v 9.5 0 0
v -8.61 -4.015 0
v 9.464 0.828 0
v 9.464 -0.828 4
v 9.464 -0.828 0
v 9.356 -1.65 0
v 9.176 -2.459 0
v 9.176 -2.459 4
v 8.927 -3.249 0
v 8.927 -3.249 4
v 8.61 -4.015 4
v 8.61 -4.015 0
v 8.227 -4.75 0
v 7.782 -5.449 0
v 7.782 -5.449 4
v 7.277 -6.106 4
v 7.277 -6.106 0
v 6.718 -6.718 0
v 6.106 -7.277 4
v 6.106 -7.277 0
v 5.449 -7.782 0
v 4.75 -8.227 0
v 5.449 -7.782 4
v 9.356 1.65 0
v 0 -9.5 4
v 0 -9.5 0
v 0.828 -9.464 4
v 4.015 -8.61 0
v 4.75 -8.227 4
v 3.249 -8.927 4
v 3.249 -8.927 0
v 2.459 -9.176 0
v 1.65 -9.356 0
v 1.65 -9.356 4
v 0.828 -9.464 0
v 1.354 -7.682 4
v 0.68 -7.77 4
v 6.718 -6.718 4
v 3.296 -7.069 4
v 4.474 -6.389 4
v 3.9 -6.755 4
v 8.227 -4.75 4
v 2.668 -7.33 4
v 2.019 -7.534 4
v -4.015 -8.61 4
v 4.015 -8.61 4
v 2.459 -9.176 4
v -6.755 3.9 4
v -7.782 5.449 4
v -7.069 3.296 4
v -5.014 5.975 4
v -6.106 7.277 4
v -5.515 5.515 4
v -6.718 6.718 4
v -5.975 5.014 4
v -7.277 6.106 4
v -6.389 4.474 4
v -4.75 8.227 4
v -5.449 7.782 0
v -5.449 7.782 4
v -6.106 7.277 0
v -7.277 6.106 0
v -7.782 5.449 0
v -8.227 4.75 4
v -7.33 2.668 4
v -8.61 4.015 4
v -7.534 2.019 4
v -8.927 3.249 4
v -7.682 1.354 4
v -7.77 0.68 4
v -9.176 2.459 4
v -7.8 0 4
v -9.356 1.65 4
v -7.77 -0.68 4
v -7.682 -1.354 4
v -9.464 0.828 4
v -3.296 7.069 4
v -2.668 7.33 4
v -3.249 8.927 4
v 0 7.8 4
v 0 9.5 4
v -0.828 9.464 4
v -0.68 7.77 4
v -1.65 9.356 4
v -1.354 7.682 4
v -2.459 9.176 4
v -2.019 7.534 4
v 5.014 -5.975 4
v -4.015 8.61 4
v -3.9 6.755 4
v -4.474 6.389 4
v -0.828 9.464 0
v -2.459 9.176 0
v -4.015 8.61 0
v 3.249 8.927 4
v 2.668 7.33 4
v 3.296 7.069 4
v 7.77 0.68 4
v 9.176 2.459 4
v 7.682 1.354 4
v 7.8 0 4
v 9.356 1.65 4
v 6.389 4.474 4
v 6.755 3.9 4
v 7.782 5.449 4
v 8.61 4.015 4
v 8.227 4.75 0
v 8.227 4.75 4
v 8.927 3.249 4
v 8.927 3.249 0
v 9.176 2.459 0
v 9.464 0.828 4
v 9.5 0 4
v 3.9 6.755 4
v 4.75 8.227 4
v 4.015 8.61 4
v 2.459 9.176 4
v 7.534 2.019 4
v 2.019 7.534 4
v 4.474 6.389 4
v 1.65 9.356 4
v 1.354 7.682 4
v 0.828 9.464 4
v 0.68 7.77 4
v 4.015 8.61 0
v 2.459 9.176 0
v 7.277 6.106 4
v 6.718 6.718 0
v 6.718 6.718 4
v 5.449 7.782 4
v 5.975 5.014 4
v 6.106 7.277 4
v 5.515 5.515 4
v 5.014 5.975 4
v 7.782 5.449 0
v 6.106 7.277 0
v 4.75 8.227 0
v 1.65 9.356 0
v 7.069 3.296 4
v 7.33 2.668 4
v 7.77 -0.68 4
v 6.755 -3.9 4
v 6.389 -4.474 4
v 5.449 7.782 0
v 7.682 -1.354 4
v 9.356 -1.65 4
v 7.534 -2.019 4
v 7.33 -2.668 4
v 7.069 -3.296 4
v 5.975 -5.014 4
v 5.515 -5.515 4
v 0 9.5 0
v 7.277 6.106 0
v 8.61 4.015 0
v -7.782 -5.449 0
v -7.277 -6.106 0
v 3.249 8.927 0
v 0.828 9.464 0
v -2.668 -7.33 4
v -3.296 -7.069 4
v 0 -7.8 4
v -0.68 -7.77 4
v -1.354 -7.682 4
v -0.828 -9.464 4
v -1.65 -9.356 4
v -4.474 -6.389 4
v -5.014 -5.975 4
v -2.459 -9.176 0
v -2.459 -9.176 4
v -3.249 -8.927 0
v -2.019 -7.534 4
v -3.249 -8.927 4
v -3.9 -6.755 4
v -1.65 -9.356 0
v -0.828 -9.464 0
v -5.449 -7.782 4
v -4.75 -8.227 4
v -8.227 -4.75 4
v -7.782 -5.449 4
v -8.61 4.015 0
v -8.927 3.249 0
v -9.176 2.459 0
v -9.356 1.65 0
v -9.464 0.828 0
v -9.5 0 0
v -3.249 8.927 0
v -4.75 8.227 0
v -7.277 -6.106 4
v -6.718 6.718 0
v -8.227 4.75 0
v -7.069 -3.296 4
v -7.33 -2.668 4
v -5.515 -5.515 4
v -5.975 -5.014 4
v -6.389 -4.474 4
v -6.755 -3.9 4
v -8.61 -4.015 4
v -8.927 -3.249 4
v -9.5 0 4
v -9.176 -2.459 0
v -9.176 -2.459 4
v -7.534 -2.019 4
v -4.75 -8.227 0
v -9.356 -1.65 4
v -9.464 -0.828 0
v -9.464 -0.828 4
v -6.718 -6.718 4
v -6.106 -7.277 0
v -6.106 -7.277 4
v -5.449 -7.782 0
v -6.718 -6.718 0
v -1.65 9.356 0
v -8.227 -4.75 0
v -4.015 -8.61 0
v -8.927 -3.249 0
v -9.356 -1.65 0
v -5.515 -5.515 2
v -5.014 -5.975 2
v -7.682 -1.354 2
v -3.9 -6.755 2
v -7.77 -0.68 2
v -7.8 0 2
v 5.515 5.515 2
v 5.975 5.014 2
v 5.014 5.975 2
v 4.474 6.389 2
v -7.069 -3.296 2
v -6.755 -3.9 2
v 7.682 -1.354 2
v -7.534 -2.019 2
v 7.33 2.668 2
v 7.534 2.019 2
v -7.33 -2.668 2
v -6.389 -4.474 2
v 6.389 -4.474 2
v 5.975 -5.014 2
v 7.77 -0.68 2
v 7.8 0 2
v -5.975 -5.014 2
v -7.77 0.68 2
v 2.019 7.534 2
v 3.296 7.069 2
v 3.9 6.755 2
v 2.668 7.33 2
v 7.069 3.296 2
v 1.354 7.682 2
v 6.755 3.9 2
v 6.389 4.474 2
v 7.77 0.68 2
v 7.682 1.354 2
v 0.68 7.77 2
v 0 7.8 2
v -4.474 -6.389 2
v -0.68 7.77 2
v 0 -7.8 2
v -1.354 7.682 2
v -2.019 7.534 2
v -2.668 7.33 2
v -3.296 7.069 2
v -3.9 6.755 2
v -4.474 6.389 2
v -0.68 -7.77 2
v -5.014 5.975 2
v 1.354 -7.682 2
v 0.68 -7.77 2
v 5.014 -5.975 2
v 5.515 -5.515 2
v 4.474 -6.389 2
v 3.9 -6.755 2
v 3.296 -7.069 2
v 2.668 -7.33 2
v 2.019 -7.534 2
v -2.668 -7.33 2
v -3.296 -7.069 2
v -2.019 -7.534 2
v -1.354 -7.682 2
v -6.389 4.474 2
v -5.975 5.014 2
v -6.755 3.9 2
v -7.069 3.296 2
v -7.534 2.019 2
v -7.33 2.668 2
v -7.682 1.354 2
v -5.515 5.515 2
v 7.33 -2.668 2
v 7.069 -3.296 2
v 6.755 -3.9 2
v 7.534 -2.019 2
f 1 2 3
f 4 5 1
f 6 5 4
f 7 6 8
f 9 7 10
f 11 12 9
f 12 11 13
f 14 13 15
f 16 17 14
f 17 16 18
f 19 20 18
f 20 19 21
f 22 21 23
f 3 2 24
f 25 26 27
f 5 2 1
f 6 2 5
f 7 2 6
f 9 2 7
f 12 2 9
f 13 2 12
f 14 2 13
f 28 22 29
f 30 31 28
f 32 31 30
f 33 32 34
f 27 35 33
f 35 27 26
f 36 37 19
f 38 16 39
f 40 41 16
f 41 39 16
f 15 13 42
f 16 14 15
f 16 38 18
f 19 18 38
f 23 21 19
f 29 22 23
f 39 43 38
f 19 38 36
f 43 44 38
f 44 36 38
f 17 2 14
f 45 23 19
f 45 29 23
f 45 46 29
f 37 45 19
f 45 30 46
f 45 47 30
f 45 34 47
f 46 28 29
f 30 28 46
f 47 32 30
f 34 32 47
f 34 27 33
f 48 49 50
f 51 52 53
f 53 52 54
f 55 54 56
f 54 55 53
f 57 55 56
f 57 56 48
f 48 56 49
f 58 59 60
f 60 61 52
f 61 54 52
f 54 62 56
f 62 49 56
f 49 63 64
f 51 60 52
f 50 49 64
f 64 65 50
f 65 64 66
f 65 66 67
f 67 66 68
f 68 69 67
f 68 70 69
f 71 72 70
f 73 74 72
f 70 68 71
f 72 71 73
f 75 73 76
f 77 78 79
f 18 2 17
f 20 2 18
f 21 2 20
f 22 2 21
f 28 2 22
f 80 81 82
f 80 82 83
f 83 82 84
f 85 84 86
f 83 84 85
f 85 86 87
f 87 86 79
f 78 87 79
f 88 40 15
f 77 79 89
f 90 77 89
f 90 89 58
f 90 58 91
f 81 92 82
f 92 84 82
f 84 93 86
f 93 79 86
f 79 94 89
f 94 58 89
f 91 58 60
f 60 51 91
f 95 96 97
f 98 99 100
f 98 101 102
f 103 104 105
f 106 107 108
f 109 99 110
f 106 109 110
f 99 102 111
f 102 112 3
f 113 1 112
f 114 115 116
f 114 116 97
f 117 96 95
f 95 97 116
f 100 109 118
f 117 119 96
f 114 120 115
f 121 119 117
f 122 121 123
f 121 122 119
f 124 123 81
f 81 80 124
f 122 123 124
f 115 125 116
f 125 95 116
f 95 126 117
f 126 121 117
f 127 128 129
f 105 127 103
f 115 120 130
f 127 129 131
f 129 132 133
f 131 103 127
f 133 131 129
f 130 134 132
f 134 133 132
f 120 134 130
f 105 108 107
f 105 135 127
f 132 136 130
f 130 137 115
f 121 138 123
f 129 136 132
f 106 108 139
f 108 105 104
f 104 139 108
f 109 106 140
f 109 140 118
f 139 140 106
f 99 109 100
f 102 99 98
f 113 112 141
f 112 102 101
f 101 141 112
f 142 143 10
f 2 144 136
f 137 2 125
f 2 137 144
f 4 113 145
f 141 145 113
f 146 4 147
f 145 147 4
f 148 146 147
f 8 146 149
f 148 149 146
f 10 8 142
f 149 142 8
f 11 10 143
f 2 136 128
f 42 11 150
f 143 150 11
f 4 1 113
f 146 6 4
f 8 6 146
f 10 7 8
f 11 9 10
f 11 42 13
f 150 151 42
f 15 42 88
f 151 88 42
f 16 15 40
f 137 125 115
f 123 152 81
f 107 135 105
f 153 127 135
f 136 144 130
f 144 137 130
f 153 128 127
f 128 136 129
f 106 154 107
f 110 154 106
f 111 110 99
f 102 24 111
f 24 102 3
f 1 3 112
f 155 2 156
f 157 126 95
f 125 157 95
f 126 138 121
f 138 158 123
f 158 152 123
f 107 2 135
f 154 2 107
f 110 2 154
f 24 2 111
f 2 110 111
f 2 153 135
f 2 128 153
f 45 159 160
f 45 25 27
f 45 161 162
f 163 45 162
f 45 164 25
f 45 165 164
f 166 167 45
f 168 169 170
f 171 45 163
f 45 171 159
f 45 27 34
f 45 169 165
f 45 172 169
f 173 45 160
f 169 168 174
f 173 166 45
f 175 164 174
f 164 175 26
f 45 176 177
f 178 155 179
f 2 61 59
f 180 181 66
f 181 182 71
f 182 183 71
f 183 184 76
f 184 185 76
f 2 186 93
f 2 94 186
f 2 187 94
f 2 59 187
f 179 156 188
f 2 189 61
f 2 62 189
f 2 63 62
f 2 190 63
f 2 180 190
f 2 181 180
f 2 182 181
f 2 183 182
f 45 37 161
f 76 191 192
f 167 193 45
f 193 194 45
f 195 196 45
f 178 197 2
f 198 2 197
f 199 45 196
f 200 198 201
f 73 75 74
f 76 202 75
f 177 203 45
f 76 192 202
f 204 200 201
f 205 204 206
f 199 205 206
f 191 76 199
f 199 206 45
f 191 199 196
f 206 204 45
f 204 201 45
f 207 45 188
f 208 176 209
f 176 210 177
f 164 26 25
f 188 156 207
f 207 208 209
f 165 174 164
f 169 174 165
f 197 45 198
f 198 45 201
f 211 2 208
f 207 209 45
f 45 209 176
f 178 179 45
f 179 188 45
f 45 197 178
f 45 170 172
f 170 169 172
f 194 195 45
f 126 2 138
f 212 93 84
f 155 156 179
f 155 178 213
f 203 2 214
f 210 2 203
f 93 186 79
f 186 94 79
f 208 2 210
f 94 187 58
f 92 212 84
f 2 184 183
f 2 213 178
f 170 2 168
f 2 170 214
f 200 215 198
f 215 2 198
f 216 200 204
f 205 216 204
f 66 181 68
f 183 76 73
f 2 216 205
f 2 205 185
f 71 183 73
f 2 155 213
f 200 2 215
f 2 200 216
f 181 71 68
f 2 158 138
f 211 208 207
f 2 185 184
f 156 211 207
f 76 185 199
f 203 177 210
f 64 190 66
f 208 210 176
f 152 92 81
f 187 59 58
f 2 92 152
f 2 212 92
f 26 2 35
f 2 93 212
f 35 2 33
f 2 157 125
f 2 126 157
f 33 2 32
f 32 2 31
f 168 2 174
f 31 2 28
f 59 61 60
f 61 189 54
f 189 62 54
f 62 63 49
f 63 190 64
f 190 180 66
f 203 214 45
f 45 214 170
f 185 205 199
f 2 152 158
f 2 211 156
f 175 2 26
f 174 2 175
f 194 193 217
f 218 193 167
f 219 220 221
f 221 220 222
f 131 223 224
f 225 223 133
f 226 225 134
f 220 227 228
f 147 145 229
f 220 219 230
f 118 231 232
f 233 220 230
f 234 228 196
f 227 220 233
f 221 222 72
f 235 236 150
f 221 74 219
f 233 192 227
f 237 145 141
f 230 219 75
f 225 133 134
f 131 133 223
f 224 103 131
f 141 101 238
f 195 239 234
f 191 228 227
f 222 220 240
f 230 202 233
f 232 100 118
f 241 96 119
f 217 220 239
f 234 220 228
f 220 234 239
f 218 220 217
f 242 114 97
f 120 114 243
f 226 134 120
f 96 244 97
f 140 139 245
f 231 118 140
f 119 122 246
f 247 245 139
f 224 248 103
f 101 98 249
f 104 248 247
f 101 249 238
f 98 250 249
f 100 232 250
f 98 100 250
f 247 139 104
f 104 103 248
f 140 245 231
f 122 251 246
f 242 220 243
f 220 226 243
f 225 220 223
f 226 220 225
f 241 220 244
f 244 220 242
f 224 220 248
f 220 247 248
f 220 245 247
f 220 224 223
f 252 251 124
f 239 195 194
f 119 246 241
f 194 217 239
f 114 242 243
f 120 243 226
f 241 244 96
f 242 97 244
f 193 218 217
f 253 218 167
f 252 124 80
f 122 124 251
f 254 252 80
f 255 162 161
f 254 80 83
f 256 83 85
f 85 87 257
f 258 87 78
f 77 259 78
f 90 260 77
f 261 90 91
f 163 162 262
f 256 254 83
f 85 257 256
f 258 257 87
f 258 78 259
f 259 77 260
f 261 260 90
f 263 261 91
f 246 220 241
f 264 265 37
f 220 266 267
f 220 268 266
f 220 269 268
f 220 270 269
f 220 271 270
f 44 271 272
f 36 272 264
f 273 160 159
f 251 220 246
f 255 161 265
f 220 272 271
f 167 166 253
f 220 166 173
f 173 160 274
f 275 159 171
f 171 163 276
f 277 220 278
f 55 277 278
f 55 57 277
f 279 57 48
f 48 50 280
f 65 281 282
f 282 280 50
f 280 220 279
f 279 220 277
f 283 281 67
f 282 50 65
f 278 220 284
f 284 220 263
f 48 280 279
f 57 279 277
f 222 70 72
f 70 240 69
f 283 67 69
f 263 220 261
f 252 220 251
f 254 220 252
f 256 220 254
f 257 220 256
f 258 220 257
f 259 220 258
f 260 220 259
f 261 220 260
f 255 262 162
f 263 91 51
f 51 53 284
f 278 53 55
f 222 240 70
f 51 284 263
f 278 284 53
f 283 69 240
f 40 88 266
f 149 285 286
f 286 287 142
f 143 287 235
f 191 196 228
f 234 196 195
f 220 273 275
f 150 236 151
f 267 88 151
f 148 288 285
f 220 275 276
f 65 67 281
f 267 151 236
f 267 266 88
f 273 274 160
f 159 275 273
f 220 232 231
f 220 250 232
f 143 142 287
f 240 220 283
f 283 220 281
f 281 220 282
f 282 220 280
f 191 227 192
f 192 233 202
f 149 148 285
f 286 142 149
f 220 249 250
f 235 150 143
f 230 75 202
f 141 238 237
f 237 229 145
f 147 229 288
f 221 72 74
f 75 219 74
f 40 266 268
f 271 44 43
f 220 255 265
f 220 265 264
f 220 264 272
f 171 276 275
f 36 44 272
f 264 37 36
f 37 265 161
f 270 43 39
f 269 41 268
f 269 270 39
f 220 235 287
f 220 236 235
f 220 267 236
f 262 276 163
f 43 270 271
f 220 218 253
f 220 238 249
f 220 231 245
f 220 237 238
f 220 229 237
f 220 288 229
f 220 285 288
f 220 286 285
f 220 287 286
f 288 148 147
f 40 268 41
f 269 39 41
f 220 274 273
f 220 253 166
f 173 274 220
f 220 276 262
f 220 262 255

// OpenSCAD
/*

  Miniature-scale concrete mix test jig.
  Target is 10 grams (dry weight) per cylinder, about 5 cc.

  With R=7.5 this makes 15x30mm cylinders. 
  
  At layer=3 the silicone volume required is about 40cc,
  seems to need at least 47 grams of silicone-cure AB pourable.
  
  Dr. Orion Lawlor, lawlor@alaska.edu, 2024-01 (Public Domain)
*/
//$fs=0.1; $fa=2; // smooth and slow
$fs=0.2; $fa=5; // balanced
//$fs=0.3; $fa=15; // coarse and fast

R=7.5; // 5.3cc, 15x30mm nice round numbers

wall=2; // plastic around sides of cylinder
floor=2.0;  // plastic below / above cylinder
clearance=0.3; // space around test cylinder

difference() {
    intersection() {
        cylinder(r=R+wall,h=floor+wall);

        // Round off the bottom surface
        //translate([0,0,4*R-flat]) sphere(r=4*R);
    }
    
    // Test cylinder fits inside here
    translate([0,0,floor])
        cylinder(r=R+clearance,h=4*R);
    
    // Cutaway
    //cube([100,100,100]);
}
